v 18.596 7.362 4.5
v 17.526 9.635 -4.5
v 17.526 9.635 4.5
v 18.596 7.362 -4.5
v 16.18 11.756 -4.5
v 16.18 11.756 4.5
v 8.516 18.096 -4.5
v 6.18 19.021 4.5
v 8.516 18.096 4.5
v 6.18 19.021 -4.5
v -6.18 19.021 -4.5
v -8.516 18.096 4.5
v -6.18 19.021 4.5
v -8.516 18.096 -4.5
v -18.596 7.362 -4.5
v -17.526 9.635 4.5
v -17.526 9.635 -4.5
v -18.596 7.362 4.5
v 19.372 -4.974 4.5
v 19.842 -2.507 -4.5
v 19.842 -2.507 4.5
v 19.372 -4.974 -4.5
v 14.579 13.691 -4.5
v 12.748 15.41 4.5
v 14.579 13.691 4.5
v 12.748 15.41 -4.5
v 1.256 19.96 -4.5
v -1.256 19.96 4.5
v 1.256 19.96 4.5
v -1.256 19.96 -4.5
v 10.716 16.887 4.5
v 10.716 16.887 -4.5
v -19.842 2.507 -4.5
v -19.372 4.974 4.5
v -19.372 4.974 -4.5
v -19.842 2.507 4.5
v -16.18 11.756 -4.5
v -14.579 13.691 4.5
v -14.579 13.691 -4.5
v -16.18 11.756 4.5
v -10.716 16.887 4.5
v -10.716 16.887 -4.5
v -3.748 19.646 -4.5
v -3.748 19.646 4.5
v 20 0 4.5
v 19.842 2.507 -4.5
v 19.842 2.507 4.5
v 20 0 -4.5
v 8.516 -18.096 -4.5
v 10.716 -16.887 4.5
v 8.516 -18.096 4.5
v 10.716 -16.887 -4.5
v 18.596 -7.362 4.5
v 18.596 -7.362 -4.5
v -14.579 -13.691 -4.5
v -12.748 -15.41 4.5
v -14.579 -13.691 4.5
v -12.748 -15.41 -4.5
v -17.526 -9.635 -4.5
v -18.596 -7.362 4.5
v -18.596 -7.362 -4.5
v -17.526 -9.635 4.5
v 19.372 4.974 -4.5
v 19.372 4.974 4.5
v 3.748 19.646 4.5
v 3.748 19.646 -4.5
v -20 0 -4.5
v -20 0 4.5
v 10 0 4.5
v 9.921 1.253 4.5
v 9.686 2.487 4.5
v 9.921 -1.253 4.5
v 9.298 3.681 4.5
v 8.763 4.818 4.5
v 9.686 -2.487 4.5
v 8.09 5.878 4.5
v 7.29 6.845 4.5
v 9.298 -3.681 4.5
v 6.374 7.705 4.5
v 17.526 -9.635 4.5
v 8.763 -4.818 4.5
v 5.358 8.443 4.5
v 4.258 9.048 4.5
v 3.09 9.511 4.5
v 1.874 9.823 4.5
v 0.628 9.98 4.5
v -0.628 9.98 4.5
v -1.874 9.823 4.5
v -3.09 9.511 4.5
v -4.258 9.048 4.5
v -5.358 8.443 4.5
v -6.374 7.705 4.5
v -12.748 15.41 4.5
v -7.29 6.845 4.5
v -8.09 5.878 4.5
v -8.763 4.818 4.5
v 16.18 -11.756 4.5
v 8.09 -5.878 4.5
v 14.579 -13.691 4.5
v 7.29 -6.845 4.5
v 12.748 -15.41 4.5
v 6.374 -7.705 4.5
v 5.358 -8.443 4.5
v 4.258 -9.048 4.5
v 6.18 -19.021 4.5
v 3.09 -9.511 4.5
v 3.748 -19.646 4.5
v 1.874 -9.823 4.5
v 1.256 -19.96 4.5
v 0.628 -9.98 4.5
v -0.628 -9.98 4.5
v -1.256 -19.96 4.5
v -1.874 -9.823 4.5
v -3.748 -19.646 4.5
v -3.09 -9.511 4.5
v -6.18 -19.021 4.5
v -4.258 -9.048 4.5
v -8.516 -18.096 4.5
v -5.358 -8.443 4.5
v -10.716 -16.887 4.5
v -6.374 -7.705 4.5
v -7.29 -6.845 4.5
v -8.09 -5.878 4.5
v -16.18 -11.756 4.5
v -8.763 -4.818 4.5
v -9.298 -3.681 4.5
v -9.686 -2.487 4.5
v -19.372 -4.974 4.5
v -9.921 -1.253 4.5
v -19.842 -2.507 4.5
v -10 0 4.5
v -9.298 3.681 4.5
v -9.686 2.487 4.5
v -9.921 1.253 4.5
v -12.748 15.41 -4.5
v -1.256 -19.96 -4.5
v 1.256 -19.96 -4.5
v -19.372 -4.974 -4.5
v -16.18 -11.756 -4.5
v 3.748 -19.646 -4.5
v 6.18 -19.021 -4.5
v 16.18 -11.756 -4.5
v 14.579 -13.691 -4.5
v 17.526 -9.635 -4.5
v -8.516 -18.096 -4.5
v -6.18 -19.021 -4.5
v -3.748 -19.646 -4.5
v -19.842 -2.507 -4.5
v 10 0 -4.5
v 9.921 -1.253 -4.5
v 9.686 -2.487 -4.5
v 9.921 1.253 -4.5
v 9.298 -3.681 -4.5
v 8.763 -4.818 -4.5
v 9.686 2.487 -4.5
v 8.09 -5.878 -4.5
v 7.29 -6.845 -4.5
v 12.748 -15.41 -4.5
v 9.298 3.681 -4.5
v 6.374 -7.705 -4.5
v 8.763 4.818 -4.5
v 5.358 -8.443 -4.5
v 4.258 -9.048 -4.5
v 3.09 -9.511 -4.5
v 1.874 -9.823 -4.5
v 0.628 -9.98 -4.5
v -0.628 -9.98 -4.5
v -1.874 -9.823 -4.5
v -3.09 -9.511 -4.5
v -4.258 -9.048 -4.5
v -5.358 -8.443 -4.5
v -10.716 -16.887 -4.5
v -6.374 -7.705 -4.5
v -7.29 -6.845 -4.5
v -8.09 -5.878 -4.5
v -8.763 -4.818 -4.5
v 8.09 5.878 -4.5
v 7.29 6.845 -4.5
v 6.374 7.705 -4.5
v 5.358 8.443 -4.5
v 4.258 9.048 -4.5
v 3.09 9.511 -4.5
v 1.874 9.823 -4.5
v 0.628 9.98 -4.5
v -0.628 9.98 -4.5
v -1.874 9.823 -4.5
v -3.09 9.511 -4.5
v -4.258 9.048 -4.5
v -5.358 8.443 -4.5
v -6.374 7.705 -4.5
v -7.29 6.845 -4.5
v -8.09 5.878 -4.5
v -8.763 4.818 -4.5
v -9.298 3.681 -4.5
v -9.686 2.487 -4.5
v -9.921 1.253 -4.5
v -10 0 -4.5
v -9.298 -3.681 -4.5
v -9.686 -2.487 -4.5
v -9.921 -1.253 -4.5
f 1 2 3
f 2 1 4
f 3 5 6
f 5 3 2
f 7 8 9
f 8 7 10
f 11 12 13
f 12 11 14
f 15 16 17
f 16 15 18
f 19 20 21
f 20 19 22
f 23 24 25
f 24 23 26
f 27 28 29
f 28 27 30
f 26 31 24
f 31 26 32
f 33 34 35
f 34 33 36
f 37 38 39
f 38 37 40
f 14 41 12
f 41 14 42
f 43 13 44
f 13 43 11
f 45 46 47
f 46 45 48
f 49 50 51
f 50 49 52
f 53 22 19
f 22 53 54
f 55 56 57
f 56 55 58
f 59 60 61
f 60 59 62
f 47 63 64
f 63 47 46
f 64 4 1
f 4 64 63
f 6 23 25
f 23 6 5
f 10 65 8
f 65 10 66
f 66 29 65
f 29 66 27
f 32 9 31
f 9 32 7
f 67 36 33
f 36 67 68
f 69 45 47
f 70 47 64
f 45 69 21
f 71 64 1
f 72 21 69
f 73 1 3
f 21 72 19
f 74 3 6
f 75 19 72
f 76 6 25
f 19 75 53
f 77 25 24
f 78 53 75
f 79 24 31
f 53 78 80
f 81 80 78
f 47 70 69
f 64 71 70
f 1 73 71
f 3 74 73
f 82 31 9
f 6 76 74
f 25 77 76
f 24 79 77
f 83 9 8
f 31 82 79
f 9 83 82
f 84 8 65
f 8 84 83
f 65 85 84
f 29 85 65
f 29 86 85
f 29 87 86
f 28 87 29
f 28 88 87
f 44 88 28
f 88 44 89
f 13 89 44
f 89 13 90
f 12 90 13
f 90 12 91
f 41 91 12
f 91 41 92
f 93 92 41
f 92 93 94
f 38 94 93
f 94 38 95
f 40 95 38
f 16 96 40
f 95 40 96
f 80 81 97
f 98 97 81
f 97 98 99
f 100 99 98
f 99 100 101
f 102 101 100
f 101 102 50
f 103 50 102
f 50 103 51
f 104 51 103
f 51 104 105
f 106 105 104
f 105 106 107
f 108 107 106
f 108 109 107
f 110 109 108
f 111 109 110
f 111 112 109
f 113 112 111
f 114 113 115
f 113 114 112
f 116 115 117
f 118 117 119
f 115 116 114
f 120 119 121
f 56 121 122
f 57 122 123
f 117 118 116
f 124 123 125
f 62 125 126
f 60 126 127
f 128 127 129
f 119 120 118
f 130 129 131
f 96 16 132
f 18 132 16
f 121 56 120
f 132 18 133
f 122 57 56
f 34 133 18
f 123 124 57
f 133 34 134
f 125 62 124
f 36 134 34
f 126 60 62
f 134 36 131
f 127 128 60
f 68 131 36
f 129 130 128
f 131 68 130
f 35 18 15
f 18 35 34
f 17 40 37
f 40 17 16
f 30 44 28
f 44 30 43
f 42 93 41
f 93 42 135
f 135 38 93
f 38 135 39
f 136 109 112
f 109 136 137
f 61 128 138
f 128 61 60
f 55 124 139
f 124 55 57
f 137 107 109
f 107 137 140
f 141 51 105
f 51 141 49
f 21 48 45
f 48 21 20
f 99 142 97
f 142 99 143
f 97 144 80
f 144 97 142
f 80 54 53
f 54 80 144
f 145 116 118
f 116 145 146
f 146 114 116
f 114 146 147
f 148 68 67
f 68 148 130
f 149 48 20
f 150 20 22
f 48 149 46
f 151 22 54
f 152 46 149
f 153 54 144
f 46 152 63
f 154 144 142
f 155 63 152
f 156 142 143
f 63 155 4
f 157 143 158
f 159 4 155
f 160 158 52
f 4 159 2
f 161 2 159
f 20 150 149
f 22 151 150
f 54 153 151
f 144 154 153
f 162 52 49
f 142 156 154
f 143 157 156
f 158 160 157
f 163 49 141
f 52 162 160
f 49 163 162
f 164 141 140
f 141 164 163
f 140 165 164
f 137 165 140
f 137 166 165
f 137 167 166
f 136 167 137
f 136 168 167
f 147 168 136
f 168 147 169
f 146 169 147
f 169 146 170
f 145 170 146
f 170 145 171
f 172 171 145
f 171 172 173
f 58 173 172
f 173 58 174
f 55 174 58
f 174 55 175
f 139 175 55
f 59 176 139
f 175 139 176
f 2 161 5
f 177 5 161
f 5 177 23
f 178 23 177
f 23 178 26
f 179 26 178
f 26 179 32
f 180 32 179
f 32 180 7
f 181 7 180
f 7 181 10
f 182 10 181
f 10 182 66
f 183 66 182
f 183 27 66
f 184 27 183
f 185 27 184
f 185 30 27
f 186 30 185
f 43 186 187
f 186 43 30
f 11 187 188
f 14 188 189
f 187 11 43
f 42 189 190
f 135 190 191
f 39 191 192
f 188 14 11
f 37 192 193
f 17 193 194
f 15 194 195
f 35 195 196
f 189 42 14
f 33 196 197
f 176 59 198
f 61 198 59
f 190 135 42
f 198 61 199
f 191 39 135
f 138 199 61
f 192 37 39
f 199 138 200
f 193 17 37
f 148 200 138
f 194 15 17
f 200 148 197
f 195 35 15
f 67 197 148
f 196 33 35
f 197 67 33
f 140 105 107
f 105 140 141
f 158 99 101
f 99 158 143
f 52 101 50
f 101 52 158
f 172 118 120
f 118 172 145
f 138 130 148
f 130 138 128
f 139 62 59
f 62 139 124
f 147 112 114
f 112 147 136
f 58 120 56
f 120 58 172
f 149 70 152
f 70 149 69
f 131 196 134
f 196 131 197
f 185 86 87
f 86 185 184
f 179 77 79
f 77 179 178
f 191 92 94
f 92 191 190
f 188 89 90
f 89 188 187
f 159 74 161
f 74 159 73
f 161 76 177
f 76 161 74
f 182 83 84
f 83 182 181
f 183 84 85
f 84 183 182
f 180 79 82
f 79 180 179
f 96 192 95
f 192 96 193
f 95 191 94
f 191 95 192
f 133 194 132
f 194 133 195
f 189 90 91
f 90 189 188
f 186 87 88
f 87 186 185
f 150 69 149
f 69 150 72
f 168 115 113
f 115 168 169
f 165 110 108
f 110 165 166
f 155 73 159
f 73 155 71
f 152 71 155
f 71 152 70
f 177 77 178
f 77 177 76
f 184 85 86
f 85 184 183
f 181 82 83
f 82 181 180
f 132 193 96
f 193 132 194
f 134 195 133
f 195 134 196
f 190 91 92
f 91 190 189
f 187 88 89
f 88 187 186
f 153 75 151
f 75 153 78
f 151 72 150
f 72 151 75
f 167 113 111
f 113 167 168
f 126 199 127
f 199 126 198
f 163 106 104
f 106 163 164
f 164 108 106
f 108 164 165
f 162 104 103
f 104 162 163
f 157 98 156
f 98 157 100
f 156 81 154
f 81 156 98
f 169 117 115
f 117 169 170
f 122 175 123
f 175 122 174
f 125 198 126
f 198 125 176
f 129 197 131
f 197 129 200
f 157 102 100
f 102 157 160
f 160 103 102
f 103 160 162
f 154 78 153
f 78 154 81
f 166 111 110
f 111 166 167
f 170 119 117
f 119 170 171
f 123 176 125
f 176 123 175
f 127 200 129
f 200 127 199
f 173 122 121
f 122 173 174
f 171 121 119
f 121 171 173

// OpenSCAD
$fn = 50;


difference() {
	union() {
		translate(v = [0, 0, -4.5000000000]) {
			cylinder(h = 9, r = 20.0000000000);
		}
	}
	union() {
		translate(v = [0, 0, -100.0000000000]) {
			cylinder(h = 200, r = 10);
		}
	}
}
